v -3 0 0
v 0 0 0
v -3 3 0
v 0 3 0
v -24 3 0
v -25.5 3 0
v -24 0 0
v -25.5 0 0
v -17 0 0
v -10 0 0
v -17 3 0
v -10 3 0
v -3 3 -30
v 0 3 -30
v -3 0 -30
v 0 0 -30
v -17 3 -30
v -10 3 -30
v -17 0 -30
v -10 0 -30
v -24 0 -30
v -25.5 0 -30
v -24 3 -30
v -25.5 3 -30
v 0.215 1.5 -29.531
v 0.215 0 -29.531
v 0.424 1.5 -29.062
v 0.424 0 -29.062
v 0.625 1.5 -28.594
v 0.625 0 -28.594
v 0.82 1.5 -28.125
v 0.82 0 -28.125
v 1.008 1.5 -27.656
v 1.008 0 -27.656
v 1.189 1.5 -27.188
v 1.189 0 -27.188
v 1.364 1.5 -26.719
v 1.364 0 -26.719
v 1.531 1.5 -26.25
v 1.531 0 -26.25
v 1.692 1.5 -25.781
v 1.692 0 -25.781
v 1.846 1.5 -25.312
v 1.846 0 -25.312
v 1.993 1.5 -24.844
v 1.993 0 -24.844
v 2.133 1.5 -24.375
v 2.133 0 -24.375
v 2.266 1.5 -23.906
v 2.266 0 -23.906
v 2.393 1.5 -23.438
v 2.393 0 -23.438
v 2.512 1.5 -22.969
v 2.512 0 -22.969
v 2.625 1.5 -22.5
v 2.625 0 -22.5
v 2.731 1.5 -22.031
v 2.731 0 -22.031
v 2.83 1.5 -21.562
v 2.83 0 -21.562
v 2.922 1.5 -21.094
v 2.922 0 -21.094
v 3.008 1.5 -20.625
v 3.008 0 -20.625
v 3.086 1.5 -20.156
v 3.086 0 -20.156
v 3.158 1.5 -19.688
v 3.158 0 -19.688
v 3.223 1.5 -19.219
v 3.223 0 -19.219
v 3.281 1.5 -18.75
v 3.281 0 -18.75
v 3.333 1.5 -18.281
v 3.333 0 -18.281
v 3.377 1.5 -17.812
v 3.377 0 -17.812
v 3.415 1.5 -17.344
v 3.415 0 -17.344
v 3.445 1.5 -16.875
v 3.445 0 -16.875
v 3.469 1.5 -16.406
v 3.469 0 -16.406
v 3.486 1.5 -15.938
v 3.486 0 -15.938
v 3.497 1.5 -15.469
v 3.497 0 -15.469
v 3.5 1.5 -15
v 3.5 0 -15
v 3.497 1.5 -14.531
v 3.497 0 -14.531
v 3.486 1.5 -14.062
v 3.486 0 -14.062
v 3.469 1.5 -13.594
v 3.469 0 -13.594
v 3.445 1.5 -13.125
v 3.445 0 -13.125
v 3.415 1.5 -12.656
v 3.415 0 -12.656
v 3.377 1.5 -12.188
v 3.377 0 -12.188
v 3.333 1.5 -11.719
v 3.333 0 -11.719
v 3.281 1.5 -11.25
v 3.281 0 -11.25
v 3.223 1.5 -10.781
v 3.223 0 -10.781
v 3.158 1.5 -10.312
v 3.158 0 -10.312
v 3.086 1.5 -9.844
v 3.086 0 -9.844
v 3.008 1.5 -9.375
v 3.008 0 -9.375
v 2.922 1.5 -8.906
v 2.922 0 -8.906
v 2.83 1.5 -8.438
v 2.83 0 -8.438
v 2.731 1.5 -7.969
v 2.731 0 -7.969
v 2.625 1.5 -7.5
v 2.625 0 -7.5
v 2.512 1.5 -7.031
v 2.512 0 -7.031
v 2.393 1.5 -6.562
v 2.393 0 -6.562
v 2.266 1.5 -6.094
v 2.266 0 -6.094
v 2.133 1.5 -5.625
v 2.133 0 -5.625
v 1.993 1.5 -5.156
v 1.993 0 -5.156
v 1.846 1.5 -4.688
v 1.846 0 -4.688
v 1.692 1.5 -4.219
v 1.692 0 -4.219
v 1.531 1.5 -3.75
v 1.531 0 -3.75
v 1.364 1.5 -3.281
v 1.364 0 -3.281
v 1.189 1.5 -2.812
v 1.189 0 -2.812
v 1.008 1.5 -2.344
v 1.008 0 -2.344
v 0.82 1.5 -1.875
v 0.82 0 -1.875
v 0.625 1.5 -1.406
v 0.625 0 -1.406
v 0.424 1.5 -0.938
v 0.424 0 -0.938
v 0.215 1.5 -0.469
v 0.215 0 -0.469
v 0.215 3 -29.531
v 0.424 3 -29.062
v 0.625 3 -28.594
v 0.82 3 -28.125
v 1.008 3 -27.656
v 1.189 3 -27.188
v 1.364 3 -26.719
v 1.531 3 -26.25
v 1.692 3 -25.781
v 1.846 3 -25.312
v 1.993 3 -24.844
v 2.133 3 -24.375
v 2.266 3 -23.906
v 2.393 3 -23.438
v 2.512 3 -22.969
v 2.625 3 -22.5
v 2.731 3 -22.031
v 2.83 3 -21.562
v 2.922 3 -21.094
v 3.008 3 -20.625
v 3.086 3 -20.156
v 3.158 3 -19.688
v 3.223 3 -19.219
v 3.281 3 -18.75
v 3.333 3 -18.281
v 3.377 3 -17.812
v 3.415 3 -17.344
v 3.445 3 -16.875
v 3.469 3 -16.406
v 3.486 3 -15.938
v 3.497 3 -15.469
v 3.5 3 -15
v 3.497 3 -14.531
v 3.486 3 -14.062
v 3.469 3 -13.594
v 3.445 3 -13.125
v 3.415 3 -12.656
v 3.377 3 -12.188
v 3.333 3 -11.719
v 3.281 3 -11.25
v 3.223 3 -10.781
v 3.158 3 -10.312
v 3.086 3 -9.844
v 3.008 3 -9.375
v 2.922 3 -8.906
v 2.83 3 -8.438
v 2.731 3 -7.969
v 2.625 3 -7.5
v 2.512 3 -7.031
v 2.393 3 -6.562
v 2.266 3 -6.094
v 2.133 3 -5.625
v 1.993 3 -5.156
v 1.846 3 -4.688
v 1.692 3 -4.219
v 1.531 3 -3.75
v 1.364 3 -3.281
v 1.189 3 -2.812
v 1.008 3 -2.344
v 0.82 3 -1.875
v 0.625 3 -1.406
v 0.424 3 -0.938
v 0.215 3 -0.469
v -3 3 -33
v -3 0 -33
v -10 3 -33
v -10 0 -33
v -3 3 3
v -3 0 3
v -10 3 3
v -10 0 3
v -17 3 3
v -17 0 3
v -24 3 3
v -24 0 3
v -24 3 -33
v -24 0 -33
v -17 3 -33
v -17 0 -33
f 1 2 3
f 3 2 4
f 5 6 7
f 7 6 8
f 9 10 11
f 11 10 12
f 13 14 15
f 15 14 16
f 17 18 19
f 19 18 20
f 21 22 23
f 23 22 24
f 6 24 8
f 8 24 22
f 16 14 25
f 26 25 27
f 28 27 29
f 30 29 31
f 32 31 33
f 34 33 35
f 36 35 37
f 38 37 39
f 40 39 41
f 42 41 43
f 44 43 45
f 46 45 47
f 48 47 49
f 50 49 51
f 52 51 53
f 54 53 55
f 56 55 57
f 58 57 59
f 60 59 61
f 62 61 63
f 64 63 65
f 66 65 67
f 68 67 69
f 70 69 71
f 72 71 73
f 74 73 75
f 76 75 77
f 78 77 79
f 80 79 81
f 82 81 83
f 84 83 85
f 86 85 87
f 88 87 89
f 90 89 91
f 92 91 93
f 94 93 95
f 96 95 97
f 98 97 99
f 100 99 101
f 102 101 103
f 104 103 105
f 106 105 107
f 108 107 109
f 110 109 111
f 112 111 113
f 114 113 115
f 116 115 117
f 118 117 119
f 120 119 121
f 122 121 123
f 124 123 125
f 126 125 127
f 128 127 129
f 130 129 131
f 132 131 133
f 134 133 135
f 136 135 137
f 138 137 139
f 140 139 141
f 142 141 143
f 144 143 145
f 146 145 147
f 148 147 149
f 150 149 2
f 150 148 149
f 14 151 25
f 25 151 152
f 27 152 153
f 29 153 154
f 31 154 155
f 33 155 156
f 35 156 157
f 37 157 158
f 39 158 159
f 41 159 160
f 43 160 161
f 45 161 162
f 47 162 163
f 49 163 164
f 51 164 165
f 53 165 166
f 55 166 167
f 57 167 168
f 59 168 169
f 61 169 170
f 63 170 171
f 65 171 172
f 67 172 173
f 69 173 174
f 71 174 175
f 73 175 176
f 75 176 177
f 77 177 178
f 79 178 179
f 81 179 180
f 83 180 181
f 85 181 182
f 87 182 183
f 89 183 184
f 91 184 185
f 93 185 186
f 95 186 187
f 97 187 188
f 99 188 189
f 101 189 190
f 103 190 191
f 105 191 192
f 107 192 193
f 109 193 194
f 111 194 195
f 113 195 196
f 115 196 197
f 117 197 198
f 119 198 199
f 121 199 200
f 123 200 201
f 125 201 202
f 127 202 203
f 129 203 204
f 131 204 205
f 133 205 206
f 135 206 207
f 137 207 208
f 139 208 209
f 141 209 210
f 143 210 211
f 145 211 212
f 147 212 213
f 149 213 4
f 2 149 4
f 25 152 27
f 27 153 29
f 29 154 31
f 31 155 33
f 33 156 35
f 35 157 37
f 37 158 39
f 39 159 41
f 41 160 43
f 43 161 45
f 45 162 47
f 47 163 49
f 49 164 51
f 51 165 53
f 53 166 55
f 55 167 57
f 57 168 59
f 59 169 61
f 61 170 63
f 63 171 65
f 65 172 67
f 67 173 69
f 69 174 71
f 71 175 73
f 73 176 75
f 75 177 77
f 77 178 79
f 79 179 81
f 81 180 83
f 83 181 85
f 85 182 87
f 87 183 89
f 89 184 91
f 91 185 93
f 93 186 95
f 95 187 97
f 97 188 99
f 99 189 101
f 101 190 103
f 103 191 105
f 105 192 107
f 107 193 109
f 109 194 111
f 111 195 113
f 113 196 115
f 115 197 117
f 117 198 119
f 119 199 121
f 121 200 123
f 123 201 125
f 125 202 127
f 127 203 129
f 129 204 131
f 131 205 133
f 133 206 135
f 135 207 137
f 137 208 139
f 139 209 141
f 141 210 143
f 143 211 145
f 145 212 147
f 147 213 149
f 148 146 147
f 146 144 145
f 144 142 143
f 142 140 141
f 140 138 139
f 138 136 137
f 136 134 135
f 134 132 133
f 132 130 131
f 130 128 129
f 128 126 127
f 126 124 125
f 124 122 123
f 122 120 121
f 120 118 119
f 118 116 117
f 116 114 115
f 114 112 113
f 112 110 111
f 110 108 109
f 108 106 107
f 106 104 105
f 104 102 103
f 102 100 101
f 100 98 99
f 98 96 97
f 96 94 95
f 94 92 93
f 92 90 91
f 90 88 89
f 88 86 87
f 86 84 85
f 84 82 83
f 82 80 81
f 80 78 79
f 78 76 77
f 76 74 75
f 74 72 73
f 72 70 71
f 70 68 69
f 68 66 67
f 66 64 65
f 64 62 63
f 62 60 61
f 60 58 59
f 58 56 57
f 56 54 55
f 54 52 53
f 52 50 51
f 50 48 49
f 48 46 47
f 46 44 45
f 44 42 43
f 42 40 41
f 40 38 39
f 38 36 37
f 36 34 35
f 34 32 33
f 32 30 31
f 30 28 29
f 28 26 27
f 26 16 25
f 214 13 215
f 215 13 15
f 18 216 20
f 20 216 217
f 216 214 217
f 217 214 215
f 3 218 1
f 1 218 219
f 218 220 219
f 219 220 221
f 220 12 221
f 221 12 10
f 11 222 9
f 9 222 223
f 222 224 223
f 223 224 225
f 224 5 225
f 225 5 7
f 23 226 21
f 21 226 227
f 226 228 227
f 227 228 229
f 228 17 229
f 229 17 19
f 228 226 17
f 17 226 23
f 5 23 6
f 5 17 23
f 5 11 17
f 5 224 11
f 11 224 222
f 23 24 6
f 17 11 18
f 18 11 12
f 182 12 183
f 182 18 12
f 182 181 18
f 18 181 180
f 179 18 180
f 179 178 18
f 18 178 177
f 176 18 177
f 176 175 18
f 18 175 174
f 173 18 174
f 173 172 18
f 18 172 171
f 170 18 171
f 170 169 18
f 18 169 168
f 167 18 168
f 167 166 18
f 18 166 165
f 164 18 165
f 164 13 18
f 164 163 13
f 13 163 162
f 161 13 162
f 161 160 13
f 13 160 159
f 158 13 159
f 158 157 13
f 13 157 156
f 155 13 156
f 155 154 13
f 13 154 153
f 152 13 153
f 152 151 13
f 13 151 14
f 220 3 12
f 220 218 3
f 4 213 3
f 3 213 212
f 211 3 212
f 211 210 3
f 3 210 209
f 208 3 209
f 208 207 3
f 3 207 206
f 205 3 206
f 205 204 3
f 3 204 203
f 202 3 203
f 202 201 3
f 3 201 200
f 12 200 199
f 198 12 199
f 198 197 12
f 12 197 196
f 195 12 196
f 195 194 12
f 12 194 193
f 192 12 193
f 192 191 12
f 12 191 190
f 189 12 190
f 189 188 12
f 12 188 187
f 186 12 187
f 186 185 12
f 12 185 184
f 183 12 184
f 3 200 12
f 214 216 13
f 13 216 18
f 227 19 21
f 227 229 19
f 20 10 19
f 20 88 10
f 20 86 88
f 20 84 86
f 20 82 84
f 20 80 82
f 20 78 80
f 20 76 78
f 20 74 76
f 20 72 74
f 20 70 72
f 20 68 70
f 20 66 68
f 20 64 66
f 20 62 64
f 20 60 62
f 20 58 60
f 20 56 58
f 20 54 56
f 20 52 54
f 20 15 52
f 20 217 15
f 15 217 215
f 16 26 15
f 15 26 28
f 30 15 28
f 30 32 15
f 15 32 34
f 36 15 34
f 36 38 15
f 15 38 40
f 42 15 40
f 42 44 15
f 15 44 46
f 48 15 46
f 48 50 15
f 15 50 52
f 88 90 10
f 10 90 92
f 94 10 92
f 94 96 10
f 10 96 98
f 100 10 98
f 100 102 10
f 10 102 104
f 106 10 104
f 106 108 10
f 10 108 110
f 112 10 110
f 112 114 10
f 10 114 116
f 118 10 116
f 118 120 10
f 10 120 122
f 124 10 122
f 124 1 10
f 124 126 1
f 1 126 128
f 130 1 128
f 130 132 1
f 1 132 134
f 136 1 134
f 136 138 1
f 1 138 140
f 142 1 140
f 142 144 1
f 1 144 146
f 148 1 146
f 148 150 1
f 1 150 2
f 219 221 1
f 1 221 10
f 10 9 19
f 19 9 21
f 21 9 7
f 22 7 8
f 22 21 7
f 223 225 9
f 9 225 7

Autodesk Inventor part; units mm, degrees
ref_plane "YZ Plane" through (0, 0, 0) normal (1, 0, 0) x (0, 1, 0)
ref_plane "XZ Plane" through (0, 0, 0) normal (0, 1, 0) x (-1, 0, 0)
ref_plane "XY Plane" through (0, 0, 0) normal (0, 0, 1) x (1, 0, 0)
sketch "Esquisse1" plane through (0, 0, 0) normal (0, 1, 0) x (-1, 0, 0)
  line L0 (0, 0) -> (25.5, 0)
  line L1 (25.5, 0) -> (25.5, -30)
  line L2 (25.5, -30) -> (0, -30)
  line L3 (0, -30) -> (0, 0)
  line L4 (3, 0) -> (10, 0)
  line L5 (10, 0) -> (10, 3)
  line L6 (10, 3) -> (3, 3)
  line L7 (3, 3) -> (3, 0)
  line L8 (25.5, -15) -> (0, -15) construction
  line L9 (14, 0) -> (39.5, 0)
  line L10 (17, 0) -> (24, 0)
  line L11 (24, 0) -> (24, 3)
  line L12 (24, 3) -> (17, 3)
  line L13 (17, 3) -> (17, 0)
  line L14 (3, -30) -> (10, -30)
  line L15 (10, -30) -> (10, -33)
  line L16 (10, -33) -> (3, -33)
  line L17 (3, -33) -> (3, -30)
  line L18 (17, -30) -> (24, -30)
  line L19 (24, -30) -> (24, -33)
  line L20 (24, -33) -> (17, -33)
  line L21 (17, -33) -> (17, -30)
  line L22 (0, 0) -> (-7, -15) construction
  line L23 (-7, -15) -> (0, -30) construction
  spline S0 degree 2 poles (0, 0) (-7, -15) (0, -30) knots 1 1 1 2 2 2
  line L24 (-7, -15) -> (0, -15) construction
  point P0 (14, -30)
  dimension "d0" = 30
  dimension "d1" = 3
  dimension "d2" = 7
  dimension "d3" = 3
  dimension "d6" = 14
  dimension "d11" = 1.5
  dimension "d12" = 7
extrude "Plaque1" add sketch "Esquisse1" along normal blind 3
equation "\"d6\" = 2 * d2"
equation "\"LargeurGrugeage\" = Epaisseur"
equation "\"ProfondeurGrugeage\" = 0.5 * Epaisseur"
equation "\"TailleGrugeage\" = 4 * Epaisseur"
equation "\"RestesMinimum\" = 2 * Epaisseur"
equation "\"Rayondetransition\" = RayonPli"
equation "\"TailleRayonJacobi\" = RayonPli"
equation "\"TailleJeu\" = Epaisseur"
equation "\"d13\" = RayonPli"
equation "\"Epaisseur\" = 3"
equation "\"RayonPli\" = 4"
properties part number "tip" material "Plastique PMMA"
